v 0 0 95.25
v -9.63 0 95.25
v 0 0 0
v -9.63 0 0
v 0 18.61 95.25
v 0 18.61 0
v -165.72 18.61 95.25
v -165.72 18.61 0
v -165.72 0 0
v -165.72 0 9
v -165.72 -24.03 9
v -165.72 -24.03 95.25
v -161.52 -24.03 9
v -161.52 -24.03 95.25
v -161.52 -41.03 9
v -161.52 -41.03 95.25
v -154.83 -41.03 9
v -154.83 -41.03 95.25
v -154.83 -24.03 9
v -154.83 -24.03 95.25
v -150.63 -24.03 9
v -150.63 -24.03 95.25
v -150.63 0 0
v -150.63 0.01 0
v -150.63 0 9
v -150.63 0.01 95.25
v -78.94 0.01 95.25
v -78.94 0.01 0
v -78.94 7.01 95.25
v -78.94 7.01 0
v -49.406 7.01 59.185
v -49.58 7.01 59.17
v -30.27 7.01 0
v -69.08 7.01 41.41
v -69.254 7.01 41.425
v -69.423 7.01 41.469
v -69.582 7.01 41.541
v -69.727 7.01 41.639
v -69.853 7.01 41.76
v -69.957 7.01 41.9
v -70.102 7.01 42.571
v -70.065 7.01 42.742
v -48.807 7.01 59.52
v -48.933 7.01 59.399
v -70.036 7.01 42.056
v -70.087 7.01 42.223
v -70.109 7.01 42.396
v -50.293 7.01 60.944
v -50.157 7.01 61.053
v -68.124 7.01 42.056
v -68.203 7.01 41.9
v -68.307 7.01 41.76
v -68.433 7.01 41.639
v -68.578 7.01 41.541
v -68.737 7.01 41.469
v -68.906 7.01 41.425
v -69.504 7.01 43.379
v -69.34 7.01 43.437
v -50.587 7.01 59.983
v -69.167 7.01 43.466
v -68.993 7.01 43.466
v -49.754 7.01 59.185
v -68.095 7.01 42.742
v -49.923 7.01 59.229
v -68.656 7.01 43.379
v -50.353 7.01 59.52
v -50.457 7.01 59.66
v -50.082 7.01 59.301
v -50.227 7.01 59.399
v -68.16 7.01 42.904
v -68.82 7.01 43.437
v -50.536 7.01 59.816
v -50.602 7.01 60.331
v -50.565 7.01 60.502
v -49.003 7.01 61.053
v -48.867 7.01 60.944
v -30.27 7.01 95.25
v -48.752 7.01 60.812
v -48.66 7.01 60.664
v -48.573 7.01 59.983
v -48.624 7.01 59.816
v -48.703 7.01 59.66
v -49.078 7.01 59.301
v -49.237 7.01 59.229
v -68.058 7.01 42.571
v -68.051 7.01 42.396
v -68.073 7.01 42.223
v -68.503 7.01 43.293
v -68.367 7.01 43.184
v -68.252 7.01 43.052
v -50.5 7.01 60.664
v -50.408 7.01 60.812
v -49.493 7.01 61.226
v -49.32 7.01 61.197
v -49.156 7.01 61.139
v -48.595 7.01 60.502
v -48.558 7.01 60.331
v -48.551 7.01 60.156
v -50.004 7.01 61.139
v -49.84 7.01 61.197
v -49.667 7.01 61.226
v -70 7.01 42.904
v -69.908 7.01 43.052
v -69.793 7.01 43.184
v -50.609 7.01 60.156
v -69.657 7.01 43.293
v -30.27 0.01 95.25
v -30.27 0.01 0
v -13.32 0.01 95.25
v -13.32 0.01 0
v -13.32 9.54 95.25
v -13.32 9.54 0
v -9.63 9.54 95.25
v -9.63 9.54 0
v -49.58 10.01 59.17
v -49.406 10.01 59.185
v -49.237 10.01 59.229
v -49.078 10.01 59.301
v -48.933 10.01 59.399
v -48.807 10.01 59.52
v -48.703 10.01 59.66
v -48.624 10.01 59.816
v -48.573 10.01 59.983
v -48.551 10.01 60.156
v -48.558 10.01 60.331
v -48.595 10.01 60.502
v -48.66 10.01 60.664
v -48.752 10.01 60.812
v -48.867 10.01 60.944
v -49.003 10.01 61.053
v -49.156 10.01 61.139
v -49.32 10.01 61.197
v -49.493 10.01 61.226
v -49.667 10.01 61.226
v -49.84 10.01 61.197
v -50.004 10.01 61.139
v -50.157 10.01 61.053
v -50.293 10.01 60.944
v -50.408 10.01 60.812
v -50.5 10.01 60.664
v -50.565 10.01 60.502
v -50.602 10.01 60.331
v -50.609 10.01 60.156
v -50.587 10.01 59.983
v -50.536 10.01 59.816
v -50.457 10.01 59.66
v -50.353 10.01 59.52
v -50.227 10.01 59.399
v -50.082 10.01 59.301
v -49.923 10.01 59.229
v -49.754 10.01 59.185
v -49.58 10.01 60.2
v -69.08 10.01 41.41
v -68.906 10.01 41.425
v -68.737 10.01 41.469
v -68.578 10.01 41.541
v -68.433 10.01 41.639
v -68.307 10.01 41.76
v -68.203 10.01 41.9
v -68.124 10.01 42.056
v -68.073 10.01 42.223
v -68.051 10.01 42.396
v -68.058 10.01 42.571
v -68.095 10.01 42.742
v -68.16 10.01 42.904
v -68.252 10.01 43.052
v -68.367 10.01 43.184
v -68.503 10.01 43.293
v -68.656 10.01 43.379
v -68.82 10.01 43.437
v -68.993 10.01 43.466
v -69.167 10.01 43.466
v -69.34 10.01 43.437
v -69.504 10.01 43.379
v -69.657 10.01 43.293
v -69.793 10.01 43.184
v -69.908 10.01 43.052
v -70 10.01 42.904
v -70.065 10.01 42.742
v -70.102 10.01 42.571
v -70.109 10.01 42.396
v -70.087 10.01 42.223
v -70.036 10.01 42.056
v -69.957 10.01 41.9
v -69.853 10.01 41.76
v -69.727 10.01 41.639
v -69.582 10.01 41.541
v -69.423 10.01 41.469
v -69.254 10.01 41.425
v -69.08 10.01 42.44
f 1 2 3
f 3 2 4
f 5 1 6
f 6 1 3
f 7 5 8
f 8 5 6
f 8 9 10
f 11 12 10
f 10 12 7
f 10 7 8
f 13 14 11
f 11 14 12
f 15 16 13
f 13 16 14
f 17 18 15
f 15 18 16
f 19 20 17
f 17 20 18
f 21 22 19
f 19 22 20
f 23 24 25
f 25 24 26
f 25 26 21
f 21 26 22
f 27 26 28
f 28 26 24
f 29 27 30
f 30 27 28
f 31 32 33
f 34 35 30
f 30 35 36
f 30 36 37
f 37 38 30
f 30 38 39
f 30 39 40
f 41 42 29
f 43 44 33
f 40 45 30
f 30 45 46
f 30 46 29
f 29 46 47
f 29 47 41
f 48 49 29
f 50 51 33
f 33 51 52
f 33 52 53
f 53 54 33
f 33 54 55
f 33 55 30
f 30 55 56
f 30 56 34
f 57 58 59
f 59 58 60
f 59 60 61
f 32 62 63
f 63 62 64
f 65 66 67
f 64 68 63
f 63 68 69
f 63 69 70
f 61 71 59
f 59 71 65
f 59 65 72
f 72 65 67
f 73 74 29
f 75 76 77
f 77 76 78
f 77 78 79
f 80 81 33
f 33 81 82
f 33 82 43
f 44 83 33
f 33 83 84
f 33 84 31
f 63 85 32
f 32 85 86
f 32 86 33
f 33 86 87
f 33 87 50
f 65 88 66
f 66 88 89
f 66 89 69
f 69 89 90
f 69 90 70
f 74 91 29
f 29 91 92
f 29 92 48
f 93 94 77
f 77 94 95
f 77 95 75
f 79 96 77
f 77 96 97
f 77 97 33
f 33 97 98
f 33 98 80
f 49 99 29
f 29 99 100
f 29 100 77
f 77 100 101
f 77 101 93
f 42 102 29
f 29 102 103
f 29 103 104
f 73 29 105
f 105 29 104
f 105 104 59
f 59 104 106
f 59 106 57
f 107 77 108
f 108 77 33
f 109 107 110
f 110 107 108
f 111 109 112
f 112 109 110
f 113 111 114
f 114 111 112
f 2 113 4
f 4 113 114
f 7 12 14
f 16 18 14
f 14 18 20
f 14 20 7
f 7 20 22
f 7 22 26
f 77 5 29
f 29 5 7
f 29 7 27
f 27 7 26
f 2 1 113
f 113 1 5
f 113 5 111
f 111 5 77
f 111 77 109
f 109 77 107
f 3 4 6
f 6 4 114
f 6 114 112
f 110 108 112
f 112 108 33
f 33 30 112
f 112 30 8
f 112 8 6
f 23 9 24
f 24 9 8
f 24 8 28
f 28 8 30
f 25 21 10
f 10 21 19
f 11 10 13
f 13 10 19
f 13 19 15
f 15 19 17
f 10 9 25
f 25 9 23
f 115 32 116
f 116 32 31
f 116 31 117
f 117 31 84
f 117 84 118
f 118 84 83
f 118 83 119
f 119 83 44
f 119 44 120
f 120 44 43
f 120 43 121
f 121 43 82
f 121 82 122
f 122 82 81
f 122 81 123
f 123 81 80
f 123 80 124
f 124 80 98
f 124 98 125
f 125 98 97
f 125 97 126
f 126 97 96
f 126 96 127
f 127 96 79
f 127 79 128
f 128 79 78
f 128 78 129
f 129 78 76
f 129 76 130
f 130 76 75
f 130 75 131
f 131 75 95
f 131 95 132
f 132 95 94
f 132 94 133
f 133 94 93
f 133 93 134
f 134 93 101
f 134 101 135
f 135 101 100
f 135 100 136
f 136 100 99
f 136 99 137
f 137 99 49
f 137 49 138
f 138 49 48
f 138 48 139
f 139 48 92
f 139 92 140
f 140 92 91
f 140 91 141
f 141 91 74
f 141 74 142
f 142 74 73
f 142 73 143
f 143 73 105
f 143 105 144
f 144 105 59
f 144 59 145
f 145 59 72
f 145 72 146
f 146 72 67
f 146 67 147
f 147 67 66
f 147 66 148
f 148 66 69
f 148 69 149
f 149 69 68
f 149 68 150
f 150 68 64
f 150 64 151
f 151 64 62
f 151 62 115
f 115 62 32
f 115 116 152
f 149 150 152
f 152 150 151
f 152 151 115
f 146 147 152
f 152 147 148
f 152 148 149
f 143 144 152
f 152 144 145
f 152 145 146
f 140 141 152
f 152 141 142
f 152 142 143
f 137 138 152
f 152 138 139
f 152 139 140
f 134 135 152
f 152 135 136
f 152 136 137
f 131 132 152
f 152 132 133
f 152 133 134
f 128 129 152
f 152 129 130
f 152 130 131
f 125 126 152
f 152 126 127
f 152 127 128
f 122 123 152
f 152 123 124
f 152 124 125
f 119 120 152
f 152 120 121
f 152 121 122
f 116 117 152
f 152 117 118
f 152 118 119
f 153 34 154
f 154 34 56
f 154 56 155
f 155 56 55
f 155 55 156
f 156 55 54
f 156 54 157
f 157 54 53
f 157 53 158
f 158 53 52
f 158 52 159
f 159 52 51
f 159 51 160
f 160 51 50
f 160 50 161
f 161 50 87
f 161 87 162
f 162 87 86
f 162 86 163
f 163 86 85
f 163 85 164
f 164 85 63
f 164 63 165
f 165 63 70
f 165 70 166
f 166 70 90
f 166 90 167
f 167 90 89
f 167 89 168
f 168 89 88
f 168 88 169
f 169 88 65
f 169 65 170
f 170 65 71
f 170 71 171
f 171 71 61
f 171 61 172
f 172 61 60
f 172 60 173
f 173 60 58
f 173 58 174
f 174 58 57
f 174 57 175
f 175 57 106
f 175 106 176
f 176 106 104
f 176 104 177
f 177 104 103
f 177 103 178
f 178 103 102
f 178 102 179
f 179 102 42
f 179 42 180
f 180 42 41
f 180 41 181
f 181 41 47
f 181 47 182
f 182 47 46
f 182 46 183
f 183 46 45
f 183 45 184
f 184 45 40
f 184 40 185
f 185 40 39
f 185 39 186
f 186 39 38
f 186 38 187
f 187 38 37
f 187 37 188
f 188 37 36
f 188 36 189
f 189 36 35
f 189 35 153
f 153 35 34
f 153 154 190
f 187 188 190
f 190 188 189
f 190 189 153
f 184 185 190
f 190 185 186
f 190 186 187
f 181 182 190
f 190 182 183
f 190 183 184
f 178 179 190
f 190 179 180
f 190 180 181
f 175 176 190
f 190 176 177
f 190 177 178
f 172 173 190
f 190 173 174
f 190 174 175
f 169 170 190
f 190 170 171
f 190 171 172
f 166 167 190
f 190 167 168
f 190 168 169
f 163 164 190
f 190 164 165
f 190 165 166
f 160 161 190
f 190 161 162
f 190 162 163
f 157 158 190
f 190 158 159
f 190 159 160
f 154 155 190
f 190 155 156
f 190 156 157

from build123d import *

# Parameters (mm, degrees)
BOSS_EXTRUDE1_DEPTH = 95.25
SKETCH3_W           = 9
SKETCH3_H           = 41.03
CUT_EXTRUDE1_DEPTH  = 183.880891019
SKETCH4_R           = 1.03
CUT_EXTRUDE2_DEPTH  = 3


with BuildPart() as part:
    # Sketch1 → Boss-Extrude1 (new body)
    with BuildSketch(Plane.XY):
        Polygon((0, 0), (0, 18.61), (-165.72, 18.61), (-165.72, -24.03), (-161.52, -24.03), (-161.52, -41.03), (-154.83, -41.03), (-154.83, -24.03), (-150.63, -24.03), (-150.63, 0.01), (-78.94, 0.01), (-78.94, 7.01), (-30.27, 7.01), (-30.27, 0.01), (-13.32, 0.01), (-13.32, 9.54), (-9.63, 9.54), (-9.63, 0), align=None)
    extrude(amount=BOSS_EXTRUDE1_DEPTH)

    # Sketch3 → Cut-Extrude1 (cut, through all)
    with BuildSketch(Plane(origin=(-150.63, 0, 0), x_dir=(0, 0, -1), z_dir=(1, 0, 0))):
        with Locations((-4.5, -20.515)):
            Rectangle(SKETCH3_W, SKETCH3_H)
    extrude(amount=-CUT_EXTRUDE1_DEPTH, mode=Mode.SUBTRACT)

    # Sketch4 → Cut-Extrude2 (cut)
    with BuildSketch(Plane.XZ.offset(-7.01)):
        with Locations(Location((-69.08, 42.44, 0), (0, 0, 270))):
            Circle(SKETCH4_R)
        with Locations(Location((-49.58, 60.2, 0), (0, 0, 270))):
            Circle(SKETCH4_R)
    extrude(amount=-CUT_EXTRUDE2_DEPTH, mode=Mode.SUBTRACT)


solid = part.part
